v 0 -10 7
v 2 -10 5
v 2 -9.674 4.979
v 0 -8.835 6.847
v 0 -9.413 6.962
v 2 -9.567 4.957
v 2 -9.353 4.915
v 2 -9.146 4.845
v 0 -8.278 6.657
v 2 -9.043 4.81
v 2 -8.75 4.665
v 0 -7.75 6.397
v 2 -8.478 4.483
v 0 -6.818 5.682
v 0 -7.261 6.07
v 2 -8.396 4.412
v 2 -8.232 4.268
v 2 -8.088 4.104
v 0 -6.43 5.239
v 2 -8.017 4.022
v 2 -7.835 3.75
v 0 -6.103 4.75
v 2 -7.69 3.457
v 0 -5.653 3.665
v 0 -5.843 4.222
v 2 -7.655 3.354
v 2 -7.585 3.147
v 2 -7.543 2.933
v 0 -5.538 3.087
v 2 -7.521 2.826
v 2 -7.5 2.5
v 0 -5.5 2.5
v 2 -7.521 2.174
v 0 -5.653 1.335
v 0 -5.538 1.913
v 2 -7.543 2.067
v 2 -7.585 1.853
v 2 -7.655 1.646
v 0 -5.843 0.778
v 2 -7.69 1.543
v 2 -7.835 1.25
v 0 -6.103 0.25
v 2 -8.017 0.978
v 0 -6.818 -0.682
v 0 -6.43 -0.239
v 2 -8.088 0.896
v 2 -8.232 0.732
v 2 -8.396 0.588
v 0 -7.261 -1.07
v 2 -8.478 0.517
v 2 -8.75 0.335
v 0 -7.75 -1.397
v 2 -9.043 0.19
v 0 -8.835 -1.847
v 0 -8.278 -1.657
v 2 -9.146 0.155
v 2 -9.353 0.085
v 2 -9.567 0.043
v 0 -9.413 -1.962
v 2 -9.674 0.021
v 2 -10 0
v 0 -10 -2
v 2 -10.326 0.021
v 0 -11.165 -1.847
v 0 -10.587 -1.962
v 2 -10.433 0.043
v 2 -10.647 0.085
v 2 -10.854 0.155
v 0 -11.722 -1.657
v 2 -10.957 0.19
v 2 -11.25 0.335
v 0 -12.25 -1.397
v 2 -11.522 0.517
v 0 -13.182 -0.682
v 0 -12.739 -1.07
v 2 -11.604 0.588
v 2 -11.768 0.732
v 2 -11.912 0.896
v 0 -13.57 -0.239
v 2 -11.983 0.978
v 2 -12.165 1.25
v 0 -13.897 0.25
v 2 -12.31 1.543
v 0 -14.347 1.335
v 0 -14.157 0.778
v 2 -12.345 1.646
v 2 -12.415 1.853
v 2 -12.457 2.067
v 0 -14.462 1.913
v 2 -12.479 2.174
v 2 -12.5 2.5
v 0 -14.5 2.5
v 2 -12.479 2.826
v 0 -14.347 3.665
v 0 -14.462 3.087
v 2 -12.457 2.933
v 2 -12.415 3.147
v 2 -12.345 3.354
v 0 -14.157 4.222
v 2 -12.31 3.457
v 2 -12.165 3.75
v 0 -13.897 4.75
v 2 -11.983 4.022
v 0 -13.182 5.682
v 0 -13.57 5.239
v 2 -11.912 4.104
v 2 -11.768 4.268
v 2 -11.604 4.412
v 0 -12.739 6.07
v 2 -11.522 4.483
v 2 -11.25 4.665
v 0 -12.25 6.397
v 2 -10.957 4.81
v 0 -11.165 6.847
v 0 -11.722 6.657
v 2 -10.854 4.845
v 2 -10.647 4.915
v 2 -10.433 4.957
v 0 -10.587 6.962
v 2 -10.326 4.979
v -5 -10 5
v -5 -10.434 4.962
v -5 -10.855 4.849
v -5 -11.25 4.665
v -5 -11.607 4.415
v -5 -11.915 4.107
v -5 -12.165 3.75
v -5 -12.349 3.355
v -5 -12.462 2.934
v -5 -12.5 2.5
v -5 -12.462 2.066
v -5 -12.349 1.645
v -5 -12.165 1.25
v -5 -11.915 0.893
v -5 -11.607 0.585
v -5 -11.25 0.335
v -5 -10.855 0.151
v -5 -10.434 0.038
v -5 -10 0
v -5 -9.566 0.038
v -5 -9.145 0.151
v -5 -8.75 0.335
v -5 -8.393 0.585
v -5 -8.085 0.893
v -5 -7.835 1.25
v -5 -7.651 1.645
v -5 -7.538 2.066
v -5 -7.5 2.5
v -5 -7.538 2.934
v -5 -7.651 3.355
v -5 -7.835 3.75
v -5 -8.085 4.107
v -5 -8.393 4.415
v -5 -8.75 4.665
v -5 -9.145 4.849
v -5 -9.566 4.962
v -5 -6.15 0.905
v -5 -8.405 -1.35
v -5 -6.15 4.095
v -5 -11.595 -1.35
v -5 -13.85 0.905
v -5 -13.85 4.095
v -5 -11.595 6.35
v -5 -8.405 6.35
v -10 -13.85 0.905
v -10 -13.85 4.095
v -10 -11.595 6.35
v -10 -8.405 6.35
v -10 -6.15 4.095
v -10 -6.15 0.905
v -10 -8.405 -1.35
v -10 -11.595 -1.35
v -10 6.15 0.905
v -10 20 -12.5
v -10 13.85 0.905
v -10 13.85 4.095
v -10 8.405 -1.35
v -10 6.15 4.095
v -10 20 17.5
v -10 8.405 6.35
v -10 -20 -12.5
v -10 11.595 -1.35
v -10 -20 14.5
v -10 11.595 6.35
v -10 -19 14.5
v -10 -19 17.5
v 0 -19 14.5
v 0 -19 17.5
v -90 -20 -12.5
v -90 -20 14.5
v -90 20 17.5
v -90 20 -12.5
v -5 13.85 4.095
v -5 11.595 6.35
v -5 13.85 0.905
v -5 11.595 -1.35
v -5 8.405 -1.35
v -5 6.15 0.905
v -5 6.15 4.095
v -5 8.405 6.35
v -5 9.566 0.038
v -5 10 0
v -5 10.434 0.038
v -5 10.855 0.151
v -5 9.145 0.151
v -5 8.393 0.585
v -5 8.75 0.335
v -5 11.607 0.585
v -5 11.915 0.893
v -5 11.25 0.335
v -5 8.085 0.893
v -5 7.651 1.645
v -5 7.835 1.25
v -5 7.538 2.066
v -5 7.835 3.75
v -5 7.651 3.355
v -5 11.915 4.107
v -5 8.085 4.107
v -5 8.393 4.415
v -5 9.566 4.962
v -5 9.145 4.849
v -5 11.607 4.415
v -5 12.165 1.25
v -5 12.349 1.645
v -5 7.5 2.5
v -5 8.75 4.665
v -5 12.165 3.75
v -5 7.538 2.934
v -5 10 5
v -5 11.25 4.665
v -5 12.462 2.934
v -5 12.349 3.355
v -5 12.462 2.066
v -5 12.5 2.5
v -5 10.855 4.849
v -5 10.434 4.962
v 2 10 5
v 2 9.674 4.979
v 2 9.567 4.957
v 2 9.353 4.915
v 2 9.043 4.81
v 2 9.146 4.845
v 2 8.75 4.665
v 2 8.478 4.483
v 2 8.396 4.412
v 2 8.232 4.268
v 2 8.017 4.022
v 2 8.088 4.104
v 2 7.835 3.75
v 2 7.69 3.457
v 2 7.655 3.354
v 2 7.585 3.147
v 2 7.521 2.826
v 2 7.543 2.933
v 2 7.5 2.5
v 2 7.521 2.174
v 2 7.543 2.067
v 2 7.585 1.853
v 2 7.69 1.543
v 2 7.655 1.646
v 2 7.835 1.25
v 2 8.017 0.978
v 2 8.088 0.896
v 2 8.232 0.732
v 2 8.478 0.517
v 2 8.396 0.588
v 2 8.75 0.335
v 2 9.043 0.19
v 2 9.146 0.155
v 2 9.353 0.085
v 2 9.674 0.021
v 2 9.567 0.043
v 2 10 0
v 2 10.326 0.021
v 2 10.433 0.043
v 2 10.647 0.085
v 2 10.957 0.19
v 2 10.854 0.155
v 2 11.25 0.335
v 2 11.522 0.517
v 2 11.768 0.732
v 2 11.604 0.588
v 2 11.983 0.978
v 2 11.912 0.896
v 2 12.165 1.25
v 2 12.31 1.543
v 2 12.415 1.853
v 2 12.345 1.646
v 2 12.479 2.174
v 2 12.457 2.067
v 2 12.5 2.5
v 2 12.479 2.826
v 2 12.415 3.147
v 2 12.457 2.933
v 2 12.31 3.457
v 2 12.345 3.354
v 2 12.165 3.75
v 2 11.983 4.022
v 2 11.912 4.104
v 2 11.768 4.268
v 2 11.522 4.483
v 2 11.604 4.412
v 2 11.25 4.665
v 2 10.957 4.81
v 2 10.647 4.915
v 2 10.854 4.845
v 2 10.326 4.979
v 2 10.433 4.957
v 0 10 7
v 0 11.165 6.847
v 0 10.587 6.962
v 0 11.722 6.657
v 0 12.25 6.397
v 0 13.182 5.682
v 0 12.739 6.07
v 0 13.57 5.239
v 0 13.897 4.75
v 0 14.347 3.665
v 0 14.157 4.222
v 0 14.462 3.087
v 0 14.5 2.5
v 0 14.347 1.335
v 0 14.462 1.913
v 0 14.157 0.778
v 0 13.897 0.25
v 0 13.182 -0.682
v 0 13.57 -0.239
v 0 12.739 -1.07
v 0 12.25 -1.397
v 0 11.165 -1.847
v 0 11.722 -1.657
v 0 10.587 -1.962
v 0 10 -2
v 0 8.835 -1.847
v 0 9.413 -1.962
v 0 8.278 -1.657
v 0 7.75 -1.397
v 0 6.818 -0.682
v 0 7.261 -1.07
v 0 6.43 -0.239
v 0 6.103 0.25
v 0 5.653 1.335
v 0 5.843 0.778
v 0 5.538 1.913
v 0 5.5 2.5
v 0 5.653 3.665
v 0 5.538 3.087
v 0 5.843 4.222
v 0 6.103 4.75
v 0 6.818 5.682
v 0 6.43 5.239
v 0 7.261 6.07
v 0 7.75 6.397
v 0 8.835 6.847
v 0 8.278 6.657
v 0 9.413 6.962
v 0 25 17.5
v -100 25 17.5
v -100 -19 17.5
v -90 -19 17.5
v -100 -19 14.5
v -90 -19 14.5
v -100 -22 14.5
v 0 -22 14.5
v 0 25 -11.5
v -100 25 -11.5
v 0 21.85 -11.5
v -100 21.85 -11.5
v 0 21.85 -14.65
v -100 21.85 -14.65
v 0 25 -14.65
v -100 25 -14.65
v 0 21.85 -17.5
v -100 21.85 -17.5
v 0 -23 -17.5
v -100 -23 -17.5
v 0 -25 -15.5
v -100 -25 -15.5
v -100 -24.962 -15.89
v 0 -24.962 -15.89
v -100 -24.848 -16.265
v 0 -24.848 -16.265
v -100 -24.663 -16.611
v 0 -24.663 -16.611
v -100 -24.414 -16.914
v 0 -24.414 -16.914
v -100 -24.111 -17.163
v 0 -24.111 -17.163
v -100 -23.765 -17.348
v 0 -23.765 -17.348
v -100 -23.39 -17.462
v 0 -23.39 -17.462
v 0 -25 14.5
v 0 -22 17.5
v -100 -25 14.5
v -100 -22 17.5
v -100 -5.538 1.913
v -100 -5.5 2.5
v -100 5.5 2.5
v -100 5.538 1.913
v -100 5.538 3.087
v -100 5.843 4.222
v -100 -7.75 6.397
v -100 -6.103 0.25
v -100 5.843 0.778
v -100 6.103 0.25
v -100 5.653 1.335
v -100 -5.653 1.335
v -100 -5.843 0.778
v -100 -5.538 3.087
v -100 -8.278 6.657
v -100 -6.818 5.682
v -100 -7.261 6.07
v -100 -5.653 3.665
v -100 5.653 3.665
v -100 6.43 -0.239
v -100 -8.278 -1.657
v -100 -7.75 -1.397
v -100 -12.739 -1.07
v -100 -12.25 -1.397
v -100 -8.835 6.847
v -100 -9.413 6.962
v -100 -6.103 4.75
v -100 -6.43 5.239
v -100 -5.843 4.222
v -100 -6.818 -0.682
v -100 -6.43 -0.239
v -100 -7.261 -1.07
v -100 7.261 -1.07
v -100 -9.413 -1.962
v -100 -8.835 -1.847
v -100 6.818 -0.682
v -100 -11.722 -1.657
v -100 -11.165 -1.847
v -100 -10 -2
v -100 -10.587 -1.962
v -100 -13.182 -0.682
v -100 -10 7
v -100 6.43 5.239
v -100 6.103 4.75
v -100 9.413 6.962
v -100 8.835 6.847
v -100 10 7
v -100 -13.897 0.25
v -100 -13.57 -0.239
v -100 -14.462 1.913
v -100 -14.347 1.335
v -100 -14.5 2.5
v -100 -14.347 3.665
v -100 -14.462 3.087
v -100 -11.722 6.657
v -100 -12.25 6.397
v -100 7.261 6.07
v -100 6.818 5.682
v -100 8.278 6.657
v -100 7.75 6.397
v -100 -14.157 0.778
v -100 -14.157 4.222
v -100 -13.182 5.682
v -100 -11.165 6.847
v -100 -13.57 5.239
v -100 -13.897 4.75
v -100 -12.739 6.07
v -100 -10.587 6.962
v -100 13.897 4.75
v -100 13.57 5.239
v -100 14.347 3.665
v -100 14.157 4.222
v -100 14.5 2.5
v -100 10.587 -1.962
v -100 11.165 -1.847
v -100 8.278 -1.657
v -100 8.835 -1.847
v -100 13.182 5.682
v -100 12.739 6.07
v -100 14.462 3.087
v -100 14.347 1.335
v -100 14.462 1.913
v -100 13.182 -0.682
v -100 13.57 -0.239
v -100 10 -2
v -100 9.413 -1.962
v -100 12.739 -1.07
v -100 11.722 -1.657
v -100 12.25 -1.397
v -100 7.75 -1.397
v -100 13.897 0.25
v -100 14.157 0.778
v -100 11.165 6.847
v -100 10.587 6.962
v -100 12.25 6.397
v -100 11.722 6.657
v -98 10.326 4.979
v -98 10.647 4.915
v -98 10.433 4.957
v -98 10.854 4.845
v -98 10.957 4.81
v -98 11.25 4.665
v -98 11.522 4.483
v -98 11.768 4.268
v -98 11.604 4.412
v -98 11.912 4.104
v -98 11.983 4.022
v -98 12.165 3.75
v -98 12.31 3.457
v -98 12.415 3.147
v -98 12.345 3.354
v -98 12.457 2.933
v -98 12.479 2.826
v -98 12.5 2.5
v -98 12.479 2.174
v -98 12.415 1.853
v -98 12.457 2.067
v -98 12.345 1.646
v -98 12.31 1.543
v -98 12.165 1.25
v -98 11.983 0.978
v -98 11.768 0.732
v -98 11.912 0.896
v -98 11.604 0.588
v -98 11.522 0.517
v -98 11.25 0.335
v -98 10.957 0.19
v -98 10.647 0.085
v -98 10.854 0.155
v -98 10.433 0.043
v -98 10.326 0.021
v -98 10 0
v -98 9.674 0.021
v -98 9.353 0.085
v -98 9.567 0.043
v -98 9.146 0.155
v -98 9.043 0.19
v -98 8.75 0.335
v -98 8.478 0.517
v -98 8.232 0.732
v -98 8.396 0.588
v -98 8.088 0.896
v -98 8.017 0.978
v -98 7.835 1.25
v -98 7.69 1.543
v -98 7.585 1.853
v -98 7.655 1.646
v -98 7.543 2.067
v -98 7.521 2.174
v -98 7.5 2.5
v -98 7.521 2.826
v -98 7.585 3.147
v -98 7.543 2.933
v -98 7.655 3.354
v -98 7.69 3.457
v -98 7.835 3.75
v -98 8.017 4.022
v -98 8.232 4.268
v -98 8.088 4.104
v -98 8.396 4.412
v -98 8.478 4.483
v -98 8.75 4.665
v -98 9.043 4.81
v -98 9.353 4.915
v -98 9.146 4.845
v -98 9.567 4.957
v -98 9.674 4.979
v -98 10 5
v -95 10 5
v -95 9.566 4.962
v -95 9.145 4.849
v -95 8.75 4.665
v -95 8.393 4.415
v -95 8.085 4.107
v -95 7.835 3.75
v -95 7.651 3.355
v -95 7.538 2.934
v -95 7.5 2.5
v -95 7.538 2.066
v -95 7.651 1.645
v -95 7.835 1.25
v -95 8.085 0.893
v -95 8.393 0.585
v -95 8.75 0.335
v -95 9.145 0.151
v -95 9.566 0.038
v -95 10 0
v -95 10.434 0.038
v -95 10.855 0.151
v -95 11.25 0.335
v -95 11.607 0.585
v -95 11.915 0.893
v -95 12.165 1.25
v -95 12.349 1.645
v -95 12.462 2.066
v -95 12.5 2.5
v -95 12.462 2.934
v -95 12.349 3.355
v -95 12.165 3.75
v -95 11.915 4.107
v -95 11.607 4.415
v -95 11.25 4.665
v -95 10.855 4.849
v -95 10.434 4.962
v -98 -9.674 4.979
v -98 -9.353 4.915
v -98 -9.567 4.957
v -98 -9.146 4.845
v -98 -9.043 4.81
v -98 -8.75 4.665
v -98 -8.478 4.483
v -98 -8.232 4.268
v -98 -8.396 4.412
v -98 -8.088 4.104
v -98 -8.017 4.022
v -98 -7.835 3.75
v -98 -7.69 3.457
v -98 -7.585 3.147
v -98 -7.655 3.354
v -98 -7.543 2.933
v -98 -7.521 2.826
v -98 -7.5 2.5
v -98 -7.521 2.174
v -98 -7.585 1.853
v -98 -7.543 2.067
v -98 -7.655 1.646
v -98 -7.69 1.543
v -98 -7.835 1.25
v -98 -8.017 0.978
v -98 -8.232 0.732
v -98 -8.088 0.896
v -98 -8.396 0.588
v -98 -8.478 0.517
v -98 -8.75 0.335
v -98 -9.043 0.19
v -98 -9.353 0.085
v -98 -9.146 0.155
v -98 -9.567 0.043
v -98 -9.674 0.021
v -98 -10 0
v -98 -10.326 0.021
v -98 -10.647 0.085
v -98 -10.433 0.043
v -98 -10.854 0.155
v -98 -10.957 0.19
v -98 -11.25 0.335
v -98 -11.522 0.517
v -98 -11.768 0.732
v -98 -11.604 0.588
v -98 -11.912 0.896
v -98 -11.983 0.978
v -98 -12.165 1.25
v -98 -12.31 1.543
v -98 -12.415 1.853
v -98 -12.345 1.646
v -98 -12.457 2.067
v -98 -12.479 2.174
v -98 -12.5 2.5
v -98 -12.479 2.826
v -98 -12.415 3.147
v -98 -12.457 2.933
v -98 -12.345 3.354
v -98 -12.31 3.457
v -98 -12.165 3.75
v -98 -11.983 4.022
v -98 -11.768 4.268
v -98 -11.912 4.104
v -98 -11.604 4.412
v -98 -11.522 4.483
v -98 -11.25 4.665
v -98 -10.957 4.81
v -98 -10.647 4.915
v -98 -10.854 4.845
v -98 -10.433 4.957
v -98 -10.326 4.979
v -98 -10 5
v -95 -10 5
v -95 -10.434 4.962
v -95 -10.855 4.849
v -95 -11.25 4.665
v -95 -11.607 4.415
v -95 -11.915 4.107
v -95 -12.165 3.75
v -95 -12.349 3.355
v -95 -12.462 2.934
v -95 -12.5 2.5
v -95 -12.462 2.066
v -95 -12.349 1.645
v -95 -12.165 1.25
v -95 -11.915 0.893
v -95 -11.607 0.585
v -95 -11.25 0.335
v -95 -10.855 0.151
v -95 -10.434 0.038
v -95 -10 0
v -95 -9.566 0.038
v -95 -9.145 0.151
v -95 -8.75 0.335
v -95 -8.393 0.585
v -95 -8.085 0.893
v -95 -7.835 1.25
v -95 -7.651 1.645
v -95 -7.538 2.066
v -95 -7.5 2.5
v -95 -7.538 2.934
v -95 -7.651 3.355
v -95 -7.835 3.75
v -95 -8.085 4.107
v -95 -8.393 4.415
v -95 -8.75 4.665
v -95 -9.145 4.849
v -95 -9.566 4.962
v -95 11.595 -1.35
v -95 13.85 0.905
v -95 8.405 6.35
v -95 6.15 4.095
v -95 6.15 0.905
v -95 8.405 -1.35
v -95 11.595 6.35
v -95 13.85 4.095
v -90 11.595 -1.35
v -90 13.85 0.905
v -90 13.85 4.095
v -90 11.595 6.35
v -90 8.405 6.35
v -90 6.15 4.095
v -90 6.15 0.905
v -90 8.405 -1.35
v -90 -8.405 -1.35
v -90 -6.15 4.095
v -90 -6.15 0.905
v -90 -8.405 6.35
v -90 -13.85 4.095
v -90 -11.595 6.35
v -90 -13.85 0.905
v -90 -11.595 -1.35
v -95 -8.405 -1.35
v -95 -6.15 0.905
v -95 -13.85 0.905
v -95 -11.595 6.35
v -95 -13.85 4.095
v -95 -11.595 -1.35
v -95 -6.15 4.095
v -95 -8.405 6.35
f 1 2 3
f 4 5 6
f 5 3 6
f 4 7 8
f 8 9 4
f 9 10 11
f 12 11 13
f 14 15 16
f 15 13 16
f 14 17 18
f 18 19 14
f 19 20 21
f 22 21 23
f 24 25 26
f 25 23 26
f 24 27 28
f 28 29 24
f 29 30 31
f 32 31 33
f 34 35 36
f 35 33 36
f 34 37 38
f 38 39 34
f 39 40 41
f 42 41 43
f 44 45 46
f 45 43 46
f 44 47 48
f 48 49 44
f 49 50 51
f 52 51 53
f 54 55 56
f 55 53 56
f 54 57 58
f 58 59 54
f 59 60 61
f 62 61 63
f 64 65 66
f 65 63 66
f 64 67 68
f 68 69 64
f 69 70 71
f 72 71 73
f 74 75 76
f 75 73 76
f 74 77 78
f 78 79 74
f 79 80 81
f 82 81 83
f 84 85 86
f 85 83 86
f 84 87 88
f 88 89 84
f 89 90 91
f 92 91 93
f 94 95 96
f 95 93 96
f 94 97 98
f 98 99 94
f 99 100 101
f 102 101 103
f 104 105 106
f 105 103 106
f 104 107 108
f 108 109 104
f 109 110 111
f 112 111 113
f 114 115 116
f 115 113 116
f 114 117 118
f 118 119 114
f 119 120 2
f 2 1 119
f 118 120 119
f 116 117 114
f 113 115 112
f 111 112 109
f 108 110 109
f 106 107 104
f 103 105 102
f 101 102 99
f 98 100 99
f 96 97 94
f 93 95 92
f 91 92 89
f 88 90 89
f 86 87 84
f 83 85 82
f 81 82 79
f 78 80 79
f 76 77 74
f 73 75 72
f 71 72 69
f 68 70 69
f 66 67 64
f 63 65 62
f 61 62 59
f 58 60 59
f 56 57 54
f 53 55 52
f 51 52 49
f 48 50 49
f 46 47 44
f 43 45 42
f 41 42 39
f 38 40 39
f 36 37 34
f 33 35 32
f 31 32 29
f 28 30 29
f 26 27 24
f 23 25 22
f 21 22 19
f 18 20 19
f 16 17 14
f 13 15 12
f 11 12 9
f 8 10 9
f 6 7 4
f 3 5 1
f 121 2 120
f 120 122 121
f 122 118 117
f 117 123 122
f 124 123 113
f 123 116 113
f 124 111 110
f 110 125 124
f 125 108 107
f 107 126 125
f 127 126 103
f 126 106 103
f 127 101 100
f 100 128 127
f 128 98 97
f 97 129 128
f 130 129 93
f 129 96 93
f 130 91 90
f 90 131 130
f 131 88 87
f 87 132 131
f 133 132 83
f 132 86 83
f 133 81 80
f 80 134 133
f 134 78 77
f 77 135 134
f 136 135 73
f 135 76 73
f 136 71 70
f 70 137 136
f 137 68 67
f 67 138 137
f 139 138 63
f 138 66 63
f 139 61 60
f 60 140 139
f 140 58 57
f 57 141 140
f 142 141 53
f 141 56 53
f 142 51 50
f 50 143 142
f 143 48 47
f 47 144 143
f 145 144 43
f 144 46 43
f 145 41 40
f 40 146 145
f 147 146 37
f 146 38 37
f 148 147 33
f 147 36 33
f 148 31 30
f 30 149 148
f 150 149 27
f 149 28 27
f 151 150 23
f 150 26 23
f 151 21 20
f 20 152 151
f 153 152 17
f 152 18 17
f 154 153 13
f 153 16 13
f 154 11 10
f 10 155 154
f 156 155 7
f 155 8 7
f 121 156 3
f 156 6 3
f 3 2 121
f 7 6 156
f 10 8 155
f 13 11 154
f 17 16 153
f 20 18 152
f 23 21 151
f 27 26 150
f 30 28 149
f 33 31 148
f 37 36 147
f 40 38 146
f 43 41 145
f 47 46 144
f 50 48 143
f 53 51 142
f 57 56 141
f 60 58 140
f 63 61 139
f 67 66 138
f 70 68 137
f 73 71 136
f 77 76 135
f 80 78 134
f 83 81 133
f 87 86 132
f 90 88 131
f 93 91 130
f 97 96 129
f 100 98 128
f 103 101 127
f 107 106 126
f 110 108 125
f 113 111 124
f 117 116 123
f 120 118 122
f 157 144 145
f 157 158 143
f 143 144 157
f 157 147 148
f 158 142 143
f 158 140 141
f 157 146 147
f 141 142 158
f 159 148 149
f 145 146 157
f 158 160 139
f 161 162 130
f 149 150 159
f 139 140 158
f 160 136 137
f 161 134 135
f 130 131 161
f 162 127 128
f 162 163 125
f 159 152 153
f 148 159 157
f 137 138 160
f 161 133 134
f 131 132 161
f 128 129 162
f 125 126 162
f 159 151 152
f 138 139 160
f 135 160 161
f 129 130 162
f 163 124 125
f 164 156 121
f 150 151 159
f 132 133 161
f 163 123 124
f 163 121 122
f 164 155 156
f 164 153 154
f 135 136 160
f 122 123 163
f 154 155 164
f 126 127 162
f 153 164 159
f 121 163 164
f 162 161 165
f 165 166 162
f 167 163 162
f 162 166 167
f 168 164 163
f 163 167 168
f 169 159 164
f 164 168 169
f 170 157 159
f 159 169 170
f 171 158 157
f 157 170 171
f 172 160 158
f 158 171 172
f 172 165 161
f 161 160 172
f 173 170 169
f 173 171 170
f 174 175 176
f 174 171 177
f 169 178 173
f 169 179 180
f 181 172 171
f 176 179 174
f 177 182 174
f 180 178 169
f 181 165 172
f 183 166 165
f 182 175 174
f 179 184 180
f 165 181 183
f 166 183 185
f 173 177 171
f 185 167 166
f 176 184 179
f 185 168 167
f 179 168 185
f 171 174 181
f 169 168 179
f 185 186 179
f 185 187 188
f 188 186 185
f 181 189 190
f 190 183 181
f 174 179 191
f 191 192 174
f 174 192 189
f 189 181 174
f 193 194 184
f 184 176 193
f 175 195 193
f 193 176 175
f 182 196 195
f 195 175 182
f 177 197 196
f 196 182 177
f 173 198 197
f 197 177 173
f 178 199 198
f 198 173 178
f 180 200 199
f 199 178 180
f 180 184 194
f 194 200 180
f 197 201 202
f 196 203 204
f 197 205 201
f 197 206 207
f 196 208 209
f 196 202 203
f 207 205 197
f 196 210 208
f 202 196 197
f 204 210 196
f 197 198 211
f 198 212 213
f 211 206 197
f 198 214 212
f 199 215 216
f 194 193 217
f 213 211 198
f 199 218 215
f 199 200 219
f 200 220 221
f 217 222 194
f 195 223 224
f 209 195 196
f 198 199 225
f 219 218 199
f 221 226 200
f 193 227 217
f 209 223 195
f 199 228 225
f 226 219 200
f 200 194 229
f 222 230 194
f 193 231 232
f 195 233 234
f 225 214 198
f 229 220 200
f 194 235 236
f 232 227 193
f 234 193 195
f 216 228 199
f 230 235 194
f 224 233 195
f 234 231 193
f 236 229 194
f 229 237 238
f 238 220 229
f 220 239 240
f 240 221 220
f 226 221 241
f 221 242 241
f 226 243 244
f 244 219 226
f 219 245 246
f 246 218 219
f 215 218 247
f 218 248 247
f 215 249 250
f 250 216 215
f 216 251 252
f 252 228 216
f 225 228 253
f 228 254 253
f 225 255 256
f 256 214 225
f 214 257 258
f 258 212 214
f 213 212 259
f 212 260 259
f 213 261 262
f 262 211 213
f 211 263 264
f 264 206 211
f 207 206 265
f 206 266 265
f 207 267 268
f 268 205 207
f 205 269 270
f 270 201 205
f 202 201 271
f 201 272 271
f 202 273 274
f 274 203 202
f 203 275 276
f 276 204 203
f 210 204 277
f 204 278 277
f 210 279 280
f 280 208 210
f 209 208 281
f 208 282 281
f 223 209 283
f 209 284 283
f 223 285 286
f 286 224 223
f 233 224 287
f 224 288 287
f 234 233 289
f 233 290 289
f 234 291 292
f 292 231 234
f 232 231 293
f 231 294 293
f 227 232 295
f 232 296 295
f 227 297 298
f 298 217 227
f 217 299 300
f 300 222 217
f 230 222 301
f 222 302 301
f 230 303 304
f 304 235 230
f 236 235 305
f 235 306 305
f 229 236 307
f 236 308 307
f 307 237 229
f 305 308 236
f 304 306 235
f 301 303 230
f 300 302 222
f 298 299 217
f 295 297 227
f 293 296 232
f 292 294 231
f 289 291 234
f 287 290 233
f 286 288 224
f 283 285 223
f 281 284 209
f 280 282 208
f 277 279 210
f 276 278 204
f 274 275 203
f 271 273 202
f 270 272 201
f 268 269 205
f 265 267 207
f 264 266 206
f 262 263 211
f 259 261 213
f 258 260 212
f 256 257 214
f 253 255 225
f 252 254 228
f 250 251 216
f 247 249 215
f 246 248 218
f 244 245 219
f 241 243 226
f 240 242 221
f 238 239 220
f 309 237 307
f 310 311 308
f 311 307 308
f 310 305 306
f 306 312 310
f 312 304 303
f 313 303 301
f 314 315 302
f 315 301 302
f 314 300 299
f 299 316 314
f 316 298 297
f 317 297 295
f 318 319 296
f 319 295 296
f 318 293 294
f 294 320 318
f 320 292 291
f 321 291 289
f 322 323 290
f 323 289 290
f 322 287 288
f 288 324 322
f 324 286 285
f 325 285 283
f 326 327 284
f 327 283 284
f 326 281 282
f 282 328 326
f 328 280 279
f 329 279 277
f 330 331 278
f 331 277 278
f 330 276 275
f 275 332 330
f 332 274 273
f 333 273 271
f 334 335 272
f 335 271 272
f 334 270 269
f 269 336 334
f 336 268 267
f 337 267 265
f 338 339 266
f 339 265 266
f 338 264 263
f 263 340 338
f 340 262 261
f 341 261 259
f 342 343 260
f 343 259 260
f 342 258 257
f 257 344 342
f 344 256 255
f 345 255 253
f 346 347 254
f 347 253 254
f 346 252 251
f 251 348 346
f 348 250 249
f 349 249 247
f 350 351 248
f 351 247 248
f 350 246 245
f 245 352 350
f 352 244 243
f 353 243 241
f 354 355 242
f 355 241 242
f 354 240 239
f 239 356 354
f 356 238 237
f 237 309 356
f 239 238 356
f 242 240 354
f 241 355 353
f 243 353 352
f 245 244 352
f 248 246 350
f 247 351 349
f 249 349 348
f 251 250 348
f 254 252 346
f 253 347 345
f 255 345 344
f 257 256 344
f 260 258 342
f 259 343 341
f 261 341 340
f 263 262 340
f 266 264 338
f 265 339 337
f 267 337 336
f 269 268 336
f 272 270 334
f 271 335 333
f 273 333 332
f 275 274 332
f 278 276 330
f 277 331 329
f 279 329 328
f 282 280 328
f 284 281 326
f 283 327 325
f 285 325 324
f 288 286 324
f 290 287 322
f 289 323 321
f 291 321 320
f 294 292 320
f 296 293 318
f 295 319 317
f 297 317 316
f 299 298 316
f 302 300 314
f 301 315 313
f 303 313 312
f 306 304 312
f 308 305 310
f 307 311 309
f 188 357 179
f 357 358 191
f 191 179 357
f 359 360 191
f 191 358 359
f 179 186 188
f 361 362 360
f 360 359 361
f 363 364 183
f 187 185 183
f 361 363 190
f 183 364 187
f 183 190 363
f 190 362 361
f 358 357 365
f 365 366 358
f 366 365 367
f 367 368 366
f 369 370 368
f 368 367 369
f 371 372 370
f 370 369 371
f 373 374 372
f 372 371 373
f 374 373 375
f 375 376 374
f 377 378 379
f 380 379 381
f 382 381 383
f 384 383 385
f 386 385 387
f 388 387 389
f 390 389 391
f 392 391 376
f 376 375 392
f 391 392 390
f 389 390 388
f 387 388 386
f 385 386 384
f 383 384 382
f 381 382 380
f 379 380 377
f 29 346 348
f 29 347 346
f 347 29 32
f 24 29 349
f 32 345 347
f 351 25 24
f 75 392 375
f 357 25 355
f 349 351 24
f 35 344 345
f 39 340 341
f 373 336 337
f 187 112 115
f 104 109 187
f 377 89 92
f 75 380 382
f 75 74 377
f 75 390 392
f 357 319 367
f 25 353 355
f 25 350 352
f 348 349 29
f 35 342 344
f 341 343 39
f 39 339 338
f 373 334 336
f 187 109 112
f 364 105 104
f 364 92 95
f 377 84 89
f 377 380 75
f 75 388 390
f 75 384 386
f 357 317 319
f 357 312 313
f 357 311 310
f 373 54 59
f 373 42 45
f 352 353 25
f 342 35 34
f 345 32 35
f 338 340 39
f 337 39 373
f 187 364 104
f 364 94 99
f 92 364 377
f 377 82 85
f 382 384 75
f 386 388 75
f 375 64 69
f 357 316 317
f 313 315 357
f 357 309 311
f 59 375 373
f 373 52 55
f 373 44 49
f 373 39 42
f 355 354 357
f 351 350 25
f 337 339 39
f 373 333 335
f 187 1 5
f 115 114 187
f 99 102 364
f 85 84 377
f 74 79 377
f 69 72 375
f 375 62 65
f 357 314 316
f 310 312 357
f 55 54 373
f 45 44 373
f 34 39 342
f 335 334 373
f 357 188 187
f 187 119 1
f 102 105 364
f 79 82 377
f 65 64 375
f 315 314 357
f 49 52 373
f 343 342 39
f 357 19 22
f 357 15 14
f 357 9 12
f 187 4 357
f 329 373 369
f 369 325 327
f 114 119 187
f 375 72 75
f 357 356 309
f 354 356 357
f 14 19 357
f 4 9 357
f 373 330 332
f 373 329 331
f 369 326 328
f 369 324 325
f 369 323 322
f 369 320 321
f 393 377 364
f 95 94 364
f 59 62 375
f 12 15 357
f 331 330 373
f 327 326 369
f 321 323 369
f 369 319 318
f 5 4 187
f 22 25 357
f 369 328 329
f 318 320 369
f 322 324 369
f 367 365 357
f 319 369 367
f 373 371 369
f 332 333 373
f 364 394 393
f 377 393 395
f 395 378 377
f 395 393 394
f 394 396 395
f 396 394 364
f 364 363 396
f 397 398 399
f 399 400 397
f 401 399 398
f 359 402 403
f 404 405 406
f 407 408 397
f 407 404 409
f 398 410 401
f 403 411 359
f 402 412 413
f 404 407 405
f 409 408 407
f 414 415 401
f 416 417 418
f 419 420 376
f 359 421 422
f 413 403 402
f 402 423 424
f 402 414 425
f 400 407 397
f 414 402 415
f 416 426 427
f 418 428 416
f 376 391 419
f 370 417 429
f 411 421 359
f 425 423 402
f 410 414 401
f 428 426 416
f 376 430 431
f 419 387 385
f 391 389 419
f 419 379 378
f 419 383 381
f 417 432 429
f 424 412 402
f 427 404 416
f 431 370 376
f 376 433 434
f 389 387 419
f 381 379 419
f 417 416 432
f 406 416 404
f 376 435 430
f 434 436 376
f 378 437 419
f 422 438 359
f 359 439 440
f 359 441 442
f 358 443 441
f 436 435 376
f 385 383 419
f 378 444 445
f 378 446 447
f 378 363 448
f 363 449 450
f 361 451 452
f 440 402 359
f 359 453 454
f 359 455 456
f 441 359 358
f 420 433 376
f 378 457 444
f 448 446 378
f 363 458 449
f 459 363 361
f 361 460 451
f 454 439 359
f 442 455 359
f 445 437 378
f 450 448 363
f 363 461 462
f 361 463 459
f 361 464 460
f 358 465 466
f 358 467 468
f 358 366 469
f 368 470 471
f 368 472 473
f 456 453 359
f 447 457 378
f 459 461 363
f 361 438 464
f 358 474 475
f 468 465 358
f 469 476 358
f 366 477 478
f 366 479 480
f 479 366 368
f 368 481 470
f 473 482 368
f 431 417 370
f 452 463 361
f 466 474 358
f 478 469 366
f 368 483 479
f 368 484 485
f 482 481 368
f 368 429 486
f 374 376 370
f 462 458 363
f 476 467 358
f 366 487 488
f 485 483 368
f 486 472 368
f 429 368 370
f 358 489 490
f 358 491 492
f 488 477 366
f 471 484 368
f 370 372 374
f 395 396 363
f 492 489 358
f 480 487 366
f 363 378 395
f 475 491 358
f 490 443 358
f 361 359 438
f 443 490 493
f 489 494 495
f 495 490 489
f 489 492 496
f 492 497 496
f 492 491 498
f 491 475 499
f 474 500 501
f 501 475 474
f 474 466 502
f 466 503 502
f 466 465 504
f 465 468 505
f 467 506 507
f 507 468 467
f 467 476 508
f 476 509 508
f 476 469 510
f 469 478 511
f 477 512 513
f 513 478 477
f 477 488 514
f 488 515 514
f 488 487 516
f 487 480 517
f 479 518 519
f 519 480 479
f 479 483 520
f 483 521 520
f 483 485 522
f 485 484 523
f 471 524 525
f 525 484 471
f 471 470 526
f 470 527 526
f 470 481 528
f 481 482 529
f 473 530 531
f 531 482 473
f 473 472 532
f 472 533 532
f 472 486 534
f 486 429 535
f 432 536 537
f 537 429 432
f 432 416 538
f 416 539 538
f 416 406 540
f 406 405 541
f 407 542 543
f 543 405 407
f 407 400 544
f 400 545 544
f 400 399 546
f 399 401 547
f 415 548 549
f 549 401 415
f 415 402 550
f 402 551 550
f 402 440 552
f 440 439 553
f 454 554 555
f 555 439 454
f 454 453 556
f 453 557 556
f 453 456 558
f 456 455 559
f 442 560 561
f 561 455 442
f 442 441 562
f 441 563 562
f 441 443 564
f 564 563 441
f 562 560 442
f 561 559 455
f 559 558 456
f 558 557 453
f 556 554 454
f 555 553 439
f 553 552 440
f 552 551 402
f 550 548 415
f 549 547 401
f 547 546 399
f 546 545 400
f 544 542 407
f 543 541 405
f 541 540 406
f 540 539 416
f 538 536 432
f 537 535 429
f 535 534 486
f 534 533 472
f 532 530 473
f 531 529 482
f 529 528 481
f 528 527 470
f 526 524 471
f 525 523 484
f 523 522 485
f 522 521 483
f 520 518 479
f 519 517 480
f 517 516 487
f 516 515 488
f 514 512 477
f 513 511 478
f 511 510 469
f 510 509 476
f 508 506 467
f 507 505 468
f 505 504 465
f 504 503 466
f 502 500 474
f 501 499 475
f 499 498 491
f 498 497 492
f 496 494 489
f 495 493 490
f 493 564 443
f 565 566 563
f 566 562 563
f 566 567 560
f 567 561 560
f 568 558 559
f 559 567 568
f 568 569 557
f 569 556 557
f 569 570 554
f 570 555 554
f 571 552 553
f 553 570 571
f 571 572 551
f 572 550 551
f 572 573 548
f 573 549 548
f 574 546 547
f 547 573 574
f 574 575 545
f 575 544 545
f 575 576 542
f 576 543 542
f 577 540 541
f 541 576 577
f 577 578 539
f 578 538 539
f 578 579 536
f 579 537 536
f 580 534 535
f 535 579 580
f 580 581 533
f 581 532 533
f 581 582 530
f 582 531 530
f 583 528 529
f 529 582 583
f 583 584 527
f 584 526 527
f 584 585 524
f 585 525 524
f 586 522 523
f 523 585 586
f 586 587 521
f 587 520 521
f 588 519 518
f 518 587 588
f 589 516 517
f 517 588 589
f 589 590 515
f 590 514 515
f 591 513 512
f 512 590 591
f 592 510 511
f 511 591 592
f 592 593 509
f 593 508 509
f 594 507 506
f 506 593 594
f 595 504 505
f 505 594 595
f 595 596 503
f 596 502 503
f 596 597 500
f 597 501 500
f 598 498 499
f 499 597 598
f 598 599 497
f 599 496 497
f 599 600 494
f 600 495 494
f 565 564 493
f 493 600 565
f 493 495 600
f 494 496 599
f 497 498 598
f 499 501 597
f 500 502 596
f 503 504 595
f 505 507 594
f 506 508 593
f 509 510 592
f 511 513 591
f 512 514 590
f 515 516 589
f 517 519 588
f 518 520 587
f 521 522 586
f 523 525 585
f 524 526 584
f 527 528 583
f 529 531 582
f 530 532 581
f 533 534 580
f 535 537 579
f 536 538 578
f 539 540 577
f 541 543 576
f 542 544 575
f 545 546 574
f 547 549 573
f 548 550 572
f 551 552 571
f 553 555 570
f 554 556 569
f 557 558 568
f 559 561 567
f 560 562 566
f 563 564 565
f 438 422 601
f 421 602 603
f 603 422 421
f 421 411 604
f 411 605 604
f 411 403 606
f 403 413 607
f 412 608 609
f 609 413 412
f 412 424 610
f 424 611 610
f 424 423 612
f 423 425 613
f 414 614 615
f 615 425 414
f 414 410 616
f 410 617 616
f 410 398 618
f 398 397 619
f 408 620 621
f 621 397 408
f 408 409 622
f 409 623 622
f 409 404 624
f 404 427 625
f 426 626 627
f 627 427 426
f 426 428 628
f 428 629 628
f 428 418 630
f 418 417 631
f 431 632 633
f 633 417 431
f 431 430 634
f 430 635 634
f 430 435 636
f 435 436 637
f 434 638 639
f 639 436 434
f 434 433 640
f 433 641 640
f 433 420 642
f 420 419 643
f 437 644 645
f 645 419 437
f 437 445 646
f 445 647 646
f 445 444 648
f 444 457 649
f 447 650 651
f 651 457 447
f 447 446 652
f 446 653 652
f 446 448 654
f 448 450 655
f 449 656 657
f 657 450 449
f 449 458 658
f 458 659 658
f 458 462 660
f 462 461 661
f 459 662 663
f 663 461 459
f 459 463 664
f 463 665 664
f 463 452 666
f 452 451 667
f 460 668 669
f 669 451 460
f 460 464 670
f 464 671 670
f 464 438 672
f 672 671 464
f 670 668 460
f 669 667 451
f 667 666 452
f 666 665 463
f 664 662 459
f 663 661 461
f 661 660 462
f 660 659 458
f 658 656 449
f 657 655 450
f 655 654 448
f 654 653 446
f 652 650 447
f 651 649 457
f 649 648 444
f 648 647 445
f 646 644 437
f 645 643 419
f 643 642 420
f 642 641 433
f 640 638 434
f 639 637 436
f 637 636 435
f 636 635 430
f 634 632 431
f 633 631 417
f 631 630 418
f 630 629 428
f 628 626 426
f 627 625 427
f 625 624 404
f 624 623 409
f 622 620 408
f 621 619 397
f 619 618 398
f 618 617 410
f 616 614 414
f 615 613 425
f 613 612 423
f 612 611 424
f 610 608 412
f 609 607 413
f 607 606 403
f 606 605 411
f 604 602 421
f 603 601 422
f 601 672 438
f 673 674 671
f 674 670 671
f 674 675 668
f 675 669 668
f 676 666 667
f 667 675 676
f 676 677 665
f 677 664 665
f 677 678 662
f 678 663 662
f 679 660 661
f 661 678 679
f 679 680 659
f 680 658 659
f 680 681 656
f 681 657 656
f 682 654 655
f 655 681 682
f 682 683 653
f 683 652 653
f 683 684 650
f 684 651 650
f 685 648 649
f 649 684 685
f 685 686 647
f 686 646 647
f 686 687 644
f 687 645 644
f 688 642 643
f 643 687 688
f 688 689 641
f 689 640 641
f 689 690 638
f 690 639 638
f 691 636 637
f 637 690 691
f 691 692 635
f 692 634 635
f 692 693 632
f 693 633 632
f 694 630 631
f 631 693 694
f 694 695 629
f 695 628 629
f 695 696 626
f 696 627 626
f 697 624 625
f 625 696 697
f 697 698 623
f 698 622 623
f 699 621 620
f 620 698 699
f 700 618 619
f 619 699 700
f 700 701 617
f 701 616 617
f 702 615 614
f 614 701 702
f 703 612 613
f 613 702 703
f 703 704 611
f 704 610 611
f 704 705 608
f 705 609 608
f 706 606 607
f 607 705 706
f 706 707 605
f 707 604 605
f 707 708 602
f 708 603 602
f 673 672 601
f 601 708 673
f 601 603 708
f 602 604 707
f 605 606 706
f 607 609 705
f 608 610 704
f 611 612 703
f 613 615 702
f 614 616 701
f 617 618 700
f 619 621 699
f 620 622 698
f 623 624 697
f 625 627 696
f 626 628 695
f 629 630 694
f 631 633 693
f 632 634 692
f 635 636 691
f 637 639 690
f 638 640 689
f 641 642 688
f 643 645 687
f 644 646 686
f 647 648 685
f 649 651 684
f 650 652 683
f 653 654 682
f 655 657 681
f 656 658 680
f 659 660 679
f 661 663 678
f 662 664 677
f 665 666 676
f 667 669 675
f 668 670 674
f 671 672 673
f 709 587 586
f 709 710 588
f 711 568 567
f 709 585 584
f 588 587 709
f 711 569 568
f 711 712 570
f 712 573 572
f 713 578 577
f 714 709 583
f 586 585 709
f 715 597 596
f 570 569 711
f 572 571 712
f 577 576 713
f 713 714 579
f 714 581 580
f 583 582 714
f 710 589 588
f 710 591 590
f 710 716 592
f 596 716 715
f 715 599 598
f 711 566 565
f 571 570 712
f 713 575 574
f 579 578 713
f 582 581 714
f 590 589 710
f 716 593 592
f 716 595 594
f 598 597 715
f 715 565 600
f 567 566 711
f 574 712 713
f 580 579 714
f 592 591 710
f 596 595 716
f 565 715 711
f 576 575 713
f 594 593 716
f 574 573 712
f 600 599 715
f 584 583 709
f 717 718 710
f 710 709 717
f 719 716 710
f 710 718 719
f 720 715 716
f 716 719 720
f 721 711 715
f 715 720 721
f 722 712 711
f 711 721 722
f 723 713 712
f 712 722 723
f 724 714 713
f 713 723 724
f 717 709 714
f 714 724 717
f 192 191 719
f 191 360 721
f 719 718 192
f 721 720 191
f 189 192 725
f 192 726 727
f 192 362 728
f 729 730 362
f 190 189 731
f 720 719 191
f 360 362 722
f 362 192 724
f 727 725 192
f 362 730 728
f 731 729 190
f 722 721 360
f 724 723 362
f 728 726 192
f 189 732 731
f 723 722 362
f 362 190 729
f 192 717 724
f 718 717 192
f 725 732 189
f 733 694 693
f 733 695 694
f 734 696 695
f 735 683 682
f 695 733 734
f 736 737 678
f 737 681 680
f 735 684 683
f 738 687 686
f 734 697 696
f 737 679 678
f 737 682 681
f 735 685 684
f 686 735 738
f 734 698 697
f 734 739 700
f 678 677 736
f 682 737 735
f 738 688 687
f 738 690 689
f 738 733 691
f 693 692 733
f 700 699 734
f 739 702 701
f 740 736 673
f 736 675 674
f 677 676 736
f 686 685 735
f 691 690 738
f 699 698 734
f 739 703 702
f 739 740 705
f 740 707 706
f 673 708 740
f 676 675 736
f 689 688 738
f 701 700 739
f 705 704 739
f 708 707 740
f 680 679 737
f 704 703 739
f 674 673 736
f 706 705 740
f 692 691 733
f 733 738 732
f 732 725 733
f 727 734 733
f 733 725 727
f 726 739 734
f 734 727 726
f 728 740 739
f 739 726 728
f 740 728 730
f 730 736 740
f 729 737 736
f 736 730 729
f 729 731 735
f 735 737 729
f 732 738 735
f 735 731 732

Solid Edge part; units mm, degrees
sketch "Sketch1" plane through (0, 0, 0) normal (-1, 0, 0) x (0, -1, 0)
  line L0 (25, -17.5) -> (25, 17.5)
  line L1 (25, 17.5) -> (-25, 17.5)
  line L2 (-25, 17.5) -> (-25, -17.5)
  line L3 (-25, -17.5) -> (25, -17.5)
  dimension "D1" = 35
  dimension "D2" = 50
extrude "Protrusion1" add sketch "Sketch1" along normal blind 100
sketch "Sketch2" plane through (-50, 0, 17.5) normal (0, 0, 1) x (0, 1, 0)
  line L0 (20, 45) -> (20, -45)
  line L1 (-20, -45) -> (20, -45)
  line L2 (-20, 45) -> (-20, -45)
  line L3 (-20, 45) -> (20, 45)
  dimension "D1" = 90
  dimension "D2" = 5
  dimension "D3" = 90
  dimension "D4" = 5
extrude "Cutout1" cut sketch "Sketch2" against normal blind 30
sketch "Sketch3" plane through (-5, 0, 2.5) normal (-1, 0, 0) x (0, 1, 0)
  line L0 (-20, 15) -> (20, 15)
  line L1 (20, 15) -> (20, -15)
  line L2 (20, -15) -> (-20, -15)
  line L3 (-20, -15) -> (-20, 15)
  line L4 (11.5947, -3.85) -> (8.4053, -3.85)
  line L5 (8.4053, -3.85) -> (6.15, -1.5947)
  line L6 (6.15, -1.5947) -> (6.15, 1.5947)
  line L7 (6.15, 1.5947) -> (8.4053, 3.85)
  line L8 (8.4053, 3.85) -> (11.5947, 3.85)
  line L9 (11.5947, 3.85) -> (13.85, 1.5947)
  line L10 (13.85, 1.5947) -> (13.85, -1.5947)
  line L11 (13.85, -1.5947) -> (11.5947, -3.85)
  line L12 (-11.5947, -3.85) -> (-8.4053, -3.85)
  line L13 (-8.4053, -3.85) -> (-6.15, -1.5947)
  line L14 (-6.15, -1.5947) -> (-6.15, 1.5947)
  line L15 (-6.15, 1.5947) -> (-8.4053, 3.85)
  line L16 (-8.4053, 3.85) -> (-11.5947, 3.85)
  line L17 (-11.5947, 3.85) -> (-13.85, 1.5947)
  line L18 (-13.85, 1.5947) -> (-13.85, -1.5947)
  line L19 (-13.85, -1.5947) -> (-11.5947, -3.85)
extrude "Protrusion2" add sketch "Sketch3" along normal blind 5
sketch "Sketch4" plane through (0, 0, 0) normal (1, 0, 0) x (0, 1, 0)
  circle A0 centre (-10, 2.5) radius 2.5
  circle A1 centre (10, 2.5) radius 2.5
extrude "ExtrudedProtrusion_27" add sketch "Sketch4" along normal blind 5
chamfer "Chamfer_14" distance 2 angle 45 2 edges at (0, 7.5, 2.5) (0, -12.5, 2.5)
sketch "Sketch5" plane through (-100, 0, 0) normal (-1, 0, 0) x (0, -1, 0)
  circle A0 centre (-10, 2.5) radius 2.5
  circle A1 centre (10, 2.5) radius 2.5
extrude "ExtrudedProtrusion_29" add sketch "Sketch5" along normal blind 5
sketch "Sketch6" plane through (-105, 10, 2.5) normal (-1, 0, 0) x (0, -1, 0)
  circle A0 centre (0, 0) radius 2.5
  circle A1 centre (20, 0) radius 2.5
extrude "ExtrudedCutout_41" cut sketch "Sketch6" against normal blind 159
sketch "Sketch7" plane through (-95, 0, 2.5) normal (1, 0, 0) x (0, -1, 0)
  line L0 (-20, 15) -> (20, 15)
  line L1 (20, 15) -> (20, -15)
  line L2 (20, -15) -> (-20, -15)
  line L3 (-20, -15) -> (-20, 15)
  line L4 (-11.5947, 3.85) -> (-8.4053, 3.85)
  line L5 (-8.4053, 3.85) -> (-6.15, 1.5947)
  line L6 (-6.15, 1.5947) -> (-6.15, -1.5947)
  line L7 (-6.15, -1.5947) -> (-8.4053, -3.85)
  line L8 (-8.4053, -3.85) -> (-11.5947, -3.85)
  line L9 (-11.5947, -3.85) -> (-13.85, -1.5947)
  line L10 (-13.85, -1.5947) -> (-13.85, 1.5947)
  line L11 (-13.85, 1.5947) -> (-11.5947, 3.85)
  line L12 (6.15, 1.5947) -> (6.15, -1.5947)
  line L13 (6.15, -1.5947) -> (8.4053, -3.85)
  line L14 (8.4053, -3.85) -> (11.5947, -3.85)
  line L15 (11.5947, -3.85) -> (13.85, -1.5947)
  line L16 (13.85, -1.5947) -> (13.85, 1.5947)
  line L17 (13.85, 1.5947) -> (11.5947, 3.85)
  line L18 (11.5947, 3.85) -> (8.4053, 3.85)
  line L19 (8.4053, 3.85) -> (6.15, 1.5947)
extrude "ExtrudedProtrusion_30" add sketch "Sketch7" along normal blind 5
sketch "Sketch8" plane through (0, 0, 0) normal (1, 0, 0) x (0, -1, 0)
  line L0 (-25, 11.5) -> (-21.85, 11.5)
  line L1 (-21.85, 11.5) -> (-21.85, 14.65)
  line L2 (-21.85, 14.65) -> (-25, 14.65)
  line L3 (-25, 14.65) -> (-21.85, 17.5)
  line L4 (-21.85, 17.5) -> (-21.85, 20.916)
  line L5 (-21.85, 20.916) -> (-29.169, 20.916)
  line L6 (-29.169, 20.916) -> (-29.169, 11.5)
  line L7 (-29.169, 11.5) -> (-25, 11.5)
  dimension "D1" = 3.15
  dimension "D2" = 3.15
  dimension "D3" = 4.2479
  dimension "D4" = 3.416
  dimension "D5" = 7.319
  dimension "D6" = 9.416
  dimension "D7" = 4.169
extrude "Cutout2" cut sketch "Sketch8" against normal blind 112
fillet "Round_8" radius 2 1 edges at (-50, -25, -17.5)
chamfer "Chamfer_17" distance 2 angle 45 2 edges at (-100, -10, 0) (-100, 10, 0)
sketch "Sketch9" plane through (-100, 0, 0) normal (-1, 0, 0) x (0, 1, 0)
  line L0 (-22, -17.5) -> (-22, -14.5)
  line L1 (-22, -14.5) -> (-19, -14.5)
  line L2 (-19, -14.5) -> (-19, -20.07)
  line L3 (-27.2533, -20.0192) -> (-19, -20.07)
  line L4 (-27.2533, -14.5) -> (-27.2533, -20.0192)
  line L5 (-25, -14.5) -> (-27.2533, -14.5)
  line L6 (-25, -14.5) -> (-22, -17.5)
  dimension "D1" = 5.57
  dimension "D2" = 3
  dimension "D3" = 4.2426
  dimension "D4" = 2.2533
  dimension "D5" = 5.5192
  dimension "D6" = 8.2534
extrude "ExtrudedCutout_43" cut sketch "Sketch9" against normal blind 234
